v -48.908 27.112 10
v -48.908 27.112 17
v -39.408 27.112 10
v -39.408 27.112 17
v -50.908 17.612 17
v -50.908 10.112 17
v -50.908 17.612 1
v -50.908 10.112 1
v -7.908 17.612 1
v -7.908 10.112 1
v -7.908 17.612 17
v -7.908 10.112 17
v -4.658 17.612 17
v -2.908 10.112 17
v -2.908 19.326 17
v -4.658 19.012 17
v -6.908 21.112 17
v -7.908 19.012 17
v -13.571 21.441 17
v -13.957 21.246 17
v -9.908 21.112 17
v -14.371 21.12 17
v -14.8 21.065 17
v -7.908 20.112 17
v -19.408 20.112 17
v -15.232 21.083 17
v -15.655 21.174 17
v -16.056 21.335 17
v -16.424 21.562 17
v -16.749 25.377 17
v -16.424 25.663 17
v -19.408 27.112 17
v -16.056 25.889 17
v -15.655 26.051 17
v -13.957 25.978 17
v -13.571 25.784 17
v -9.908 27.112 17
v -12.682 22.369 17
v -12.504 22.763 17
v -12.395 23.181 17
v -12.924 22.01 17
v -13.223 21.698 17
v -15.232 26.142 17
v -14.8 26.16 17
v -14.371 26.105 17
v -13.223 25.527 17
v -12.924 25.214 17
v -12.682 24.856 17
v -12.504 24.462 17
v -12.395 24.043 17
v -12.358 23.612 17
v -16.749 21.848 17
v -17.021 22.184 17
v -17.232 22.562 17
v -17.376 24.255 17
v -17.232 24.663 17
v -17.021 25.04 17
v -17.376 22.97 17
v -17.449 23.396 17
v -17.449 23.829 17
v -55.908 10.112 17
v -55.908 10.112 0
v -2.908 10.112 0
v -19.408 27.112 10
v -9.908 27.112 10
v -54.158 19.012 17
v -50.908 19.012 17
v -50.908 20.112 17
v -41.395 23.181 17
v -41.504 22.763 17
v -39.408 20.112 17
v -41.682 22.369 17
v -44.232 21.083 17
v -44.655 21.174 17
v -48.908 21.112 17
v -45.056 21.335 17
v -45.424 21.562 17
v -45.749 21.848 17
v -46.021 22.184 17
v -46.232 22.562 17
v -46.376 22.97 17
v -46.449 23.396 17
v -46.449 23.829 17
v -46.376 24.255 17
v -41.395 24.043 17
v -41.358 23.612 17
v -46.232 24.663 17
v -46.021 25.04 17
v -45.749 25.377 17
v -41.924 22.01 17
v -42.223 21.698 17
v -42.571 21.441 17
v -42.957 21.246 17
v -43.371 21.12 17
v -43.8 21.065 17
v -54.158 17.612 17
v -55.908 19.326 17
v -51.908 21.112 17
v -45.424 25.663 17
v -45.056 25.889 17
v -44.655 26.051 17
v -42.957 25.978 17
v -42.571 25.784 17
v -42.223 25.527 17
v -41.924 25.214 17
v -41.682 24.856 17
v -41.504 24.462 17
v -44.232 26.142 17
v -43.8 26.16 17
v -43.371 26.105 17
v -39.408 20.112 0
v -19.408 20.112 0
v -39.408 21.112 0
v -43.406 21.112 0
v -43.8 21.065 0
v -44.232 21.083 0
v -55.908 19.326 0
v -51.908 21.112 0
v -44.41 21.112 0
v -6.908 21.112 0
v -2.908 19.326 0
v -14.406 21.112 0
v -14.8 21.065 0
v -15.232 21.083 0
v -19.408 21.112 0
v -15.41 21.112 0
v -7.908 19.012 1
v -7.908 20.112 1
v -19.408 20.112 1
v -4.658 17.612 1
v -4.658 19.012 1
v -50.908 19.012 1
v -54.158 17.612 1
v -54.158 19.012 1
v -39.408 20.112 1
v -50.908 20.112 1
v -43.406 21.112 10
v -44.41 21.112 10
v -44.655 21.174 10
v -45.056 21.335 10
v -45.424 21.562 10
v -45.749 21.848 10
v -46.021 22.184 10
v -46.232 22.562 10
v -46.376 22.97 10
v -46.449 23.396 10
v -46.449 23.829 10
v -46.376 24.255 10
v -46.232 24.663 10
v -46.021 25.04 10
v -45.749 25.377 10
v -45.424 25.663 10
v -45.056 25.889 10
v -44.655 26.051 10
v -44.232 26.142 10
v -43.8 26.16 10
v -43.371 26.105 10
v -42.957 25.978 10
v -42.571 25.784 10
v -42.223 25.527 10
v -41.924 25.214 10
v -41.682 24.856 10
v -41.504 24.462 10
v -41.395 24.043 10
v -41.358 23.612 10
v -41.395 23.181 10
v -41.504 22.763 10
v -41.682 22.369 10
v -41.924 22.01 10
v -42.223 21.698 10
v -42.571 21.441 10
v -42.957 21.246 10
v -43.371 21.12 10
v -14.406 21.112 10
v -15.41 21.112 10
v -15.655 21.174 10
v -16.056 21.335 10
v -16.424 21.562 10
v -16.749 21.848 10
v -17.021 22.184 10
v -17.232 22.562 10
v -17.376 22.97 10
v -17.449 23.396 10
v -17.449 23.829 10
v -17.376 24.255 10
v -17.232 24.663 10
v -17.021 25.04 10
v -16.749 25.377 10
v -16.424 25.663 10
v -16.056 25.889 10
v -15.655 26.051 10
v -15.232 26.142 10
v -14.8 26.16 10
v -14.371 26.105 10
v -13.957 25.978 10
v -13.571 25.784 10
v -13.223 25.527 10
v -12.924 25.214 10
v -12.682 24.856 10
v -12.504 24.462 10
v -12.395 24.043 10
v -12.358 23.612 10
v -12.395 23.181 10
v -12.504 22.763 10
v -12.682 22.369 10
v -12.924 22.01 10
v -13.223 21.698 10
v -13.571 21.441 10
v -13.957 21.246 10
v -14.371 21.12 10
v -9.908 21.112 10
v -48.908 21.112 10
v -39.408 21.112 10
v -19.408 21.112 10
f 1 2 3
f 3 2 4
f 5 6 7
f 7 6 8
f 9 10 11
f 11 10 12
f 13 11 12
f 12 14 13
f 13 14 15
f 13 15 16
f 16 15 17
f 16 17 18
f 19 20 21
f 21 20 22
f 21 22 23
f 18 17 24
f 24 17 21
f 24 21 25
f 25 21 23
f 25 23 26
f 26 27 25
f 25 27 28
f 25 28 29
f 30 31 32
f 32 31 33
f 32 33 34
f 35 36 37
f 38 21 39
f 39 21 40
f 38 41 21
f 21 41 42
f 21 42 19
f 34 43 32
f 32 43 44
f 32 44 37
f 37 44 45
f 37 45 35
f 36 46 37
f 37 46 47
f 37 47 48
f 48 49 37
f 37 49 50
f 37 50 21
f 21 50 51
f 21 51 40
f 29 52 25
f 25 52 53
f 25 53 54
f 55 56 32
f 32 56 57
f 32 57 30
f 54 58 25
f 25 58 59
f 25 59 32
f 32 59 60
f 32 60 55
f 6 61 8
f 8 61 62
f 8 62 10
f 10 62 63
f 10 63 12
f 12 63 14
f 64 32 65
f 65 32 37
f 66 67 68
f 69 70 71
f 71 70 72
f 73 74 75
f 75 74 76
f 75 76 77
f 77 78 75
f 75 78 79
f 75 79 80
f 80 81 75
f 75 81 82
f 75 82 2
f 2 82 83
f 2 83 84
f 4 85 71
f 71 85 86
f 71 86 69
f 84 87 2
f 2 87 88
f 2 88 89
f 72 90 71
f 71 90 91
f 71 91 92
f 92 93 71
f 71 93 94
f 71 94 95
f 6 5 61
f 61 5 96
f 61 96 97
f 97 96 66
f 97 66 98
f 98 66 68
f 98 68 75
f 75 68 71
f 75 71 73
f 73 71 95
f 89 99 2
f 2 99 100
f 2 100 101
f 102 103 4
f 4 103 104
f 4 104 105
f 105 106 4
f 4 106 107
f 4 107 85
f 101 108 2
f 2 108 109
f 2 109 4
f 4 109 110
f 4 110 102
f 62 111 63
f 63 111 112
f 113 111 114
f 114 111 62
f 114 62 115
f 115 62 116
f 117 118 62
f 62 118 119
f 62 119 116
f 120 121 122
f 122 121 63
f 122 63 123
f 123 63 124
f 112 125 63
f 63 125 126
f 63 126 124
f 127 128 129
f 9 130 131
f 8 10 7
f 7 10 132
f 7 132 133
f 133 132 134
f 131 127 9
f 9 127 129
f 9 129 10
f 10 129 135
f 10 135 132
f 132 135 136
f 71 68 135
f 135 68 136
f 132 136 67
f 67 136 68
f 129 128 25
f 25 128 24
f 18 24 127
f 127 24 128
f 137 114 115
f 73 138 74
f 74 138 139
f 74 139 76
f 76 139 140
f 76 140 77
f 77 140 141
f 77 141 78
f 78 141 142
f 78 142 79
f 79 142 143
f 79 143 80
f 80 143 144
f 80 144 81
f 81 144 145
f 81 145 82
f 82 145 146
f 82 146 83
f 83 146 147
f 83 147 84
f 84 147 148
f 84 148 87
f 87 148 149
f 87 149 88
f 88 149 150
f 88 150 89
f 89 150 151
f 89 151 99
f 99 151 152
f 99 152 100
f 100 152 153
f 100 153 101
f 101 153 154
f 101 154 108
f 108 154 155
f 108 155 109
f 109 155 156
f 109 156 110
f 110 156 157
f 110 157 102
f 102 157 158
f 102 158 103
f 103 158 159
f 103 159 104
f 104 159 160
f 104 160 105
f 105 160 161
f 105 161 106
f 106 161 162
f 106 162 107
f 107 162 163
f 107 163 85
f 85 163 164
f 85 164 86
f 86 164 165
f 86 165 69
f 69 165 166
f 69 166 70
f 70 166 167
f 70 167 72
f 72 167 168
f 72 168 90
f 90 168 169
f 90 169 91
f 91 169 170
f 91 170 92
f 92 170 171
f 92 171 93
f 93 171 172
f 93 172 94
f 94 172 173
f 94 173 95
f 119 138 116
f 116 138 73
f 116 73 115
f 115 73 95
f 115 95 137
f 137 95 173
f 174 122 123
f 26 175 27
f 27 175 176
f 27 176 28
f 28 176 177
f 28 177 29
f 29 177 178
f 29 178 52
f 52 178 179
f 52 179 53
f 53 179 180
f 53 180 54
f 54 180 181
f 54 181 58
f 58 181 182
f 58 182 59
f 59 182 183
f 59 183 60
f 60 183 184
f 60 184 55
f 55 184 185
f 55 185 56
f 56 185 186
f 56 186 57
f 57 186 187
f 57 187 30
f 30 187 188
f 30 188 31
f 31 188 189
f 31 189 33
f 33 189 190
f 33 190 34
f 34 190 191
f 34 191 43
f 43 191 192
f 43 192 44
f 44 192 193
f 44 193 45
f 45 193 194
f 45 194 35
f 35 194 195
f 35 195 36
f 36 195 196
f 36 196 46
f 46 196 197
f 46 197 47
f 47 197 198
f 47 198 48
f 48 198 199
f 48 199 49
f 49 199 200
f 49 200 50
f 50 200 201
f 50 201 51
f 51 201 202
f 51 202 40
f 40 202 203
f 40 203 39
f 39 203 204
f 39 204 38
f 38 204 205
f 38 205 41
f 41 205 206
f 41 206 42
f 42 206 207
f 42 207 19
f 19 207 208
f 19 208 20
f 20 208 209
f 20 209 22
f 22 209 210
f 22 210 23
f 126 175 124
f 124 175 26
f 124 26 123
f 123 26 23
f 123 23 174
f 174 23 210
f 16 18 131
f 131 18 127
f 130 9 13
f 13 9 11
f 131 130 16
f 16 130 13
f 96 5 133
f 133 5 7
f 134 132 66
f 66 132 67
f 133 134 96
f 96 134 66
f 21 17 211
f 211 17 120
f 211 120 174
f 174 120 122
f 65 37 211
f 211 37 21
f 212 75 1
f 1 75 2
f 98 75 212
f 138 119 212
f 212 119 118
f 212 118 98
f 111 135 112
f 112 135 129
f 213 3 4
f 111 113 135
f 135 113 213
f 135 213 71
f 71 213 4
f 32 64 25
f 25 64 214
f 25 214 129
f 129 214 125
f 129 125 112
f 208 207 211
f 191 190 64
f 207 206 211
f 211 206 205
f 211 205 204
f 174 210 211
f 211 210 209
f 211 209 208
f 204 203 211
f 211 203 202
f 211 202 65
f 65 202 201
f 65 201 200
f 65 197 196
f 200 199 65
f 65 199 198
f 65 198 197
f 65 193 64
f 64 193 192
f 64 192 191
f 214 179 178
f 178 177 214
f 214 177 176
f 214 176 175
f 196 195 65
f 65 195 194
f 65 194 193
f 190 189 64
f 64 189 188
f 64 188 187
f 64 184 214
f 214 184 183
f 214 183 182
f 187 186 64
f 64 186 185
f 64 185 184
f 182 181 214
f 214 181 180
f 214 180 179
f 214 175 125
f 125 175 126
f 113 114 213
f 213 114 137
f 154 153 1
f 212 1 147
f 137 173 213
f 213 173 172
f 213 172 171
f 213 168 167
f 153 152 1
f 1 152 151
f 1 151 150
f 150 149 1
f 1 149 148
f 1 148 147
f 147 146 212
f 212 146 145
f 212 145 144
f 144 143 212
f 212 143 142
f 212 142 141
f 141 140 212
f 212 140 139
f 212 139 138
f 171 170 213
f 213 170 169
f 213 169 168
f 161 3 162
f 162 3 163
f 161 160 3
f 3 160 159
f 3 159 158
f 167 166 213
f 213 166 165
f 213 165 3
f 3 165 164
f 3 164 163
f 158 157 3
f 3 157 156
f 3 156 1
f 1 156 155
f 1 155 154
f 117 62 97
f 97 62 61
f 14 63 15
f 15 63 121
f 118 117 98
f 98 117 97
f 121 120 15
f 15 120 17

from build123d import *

# Parameters (mm, degrees)
CROQUIS1_W              = 51
CROQUIS1_H              = 17
SALIENTE_EXTRUIR1_DEPTH = 17
CROQUIS2_W              = 15
CROQUIS2_H              = 16
CORTAR_EXTRUIR1_DEPTH   = 17
CROQUIS3_W              = 43
CROQUIS3_H              = 10
CORTAR_EXTRUIR2_DEPTH   = 16
CORTAR_EXTRUIR3_START   = -17
CROQUIS5_R              = 2.55
CORTAR_EXTRUIR3_DEPTH   = 17
CROQUIS6_W              = 49.5
CROQUIS6_H              = 1.4
CORTAR_EXTRUIR4_DEPTH   = 16
CORTAR_EXTRUIR5_START   = -17
CROQUIS7_W              = 6
CROQUIS7_H              = 6
CROQUIS7_W_2            = 20
CROQUIS7_H_2            = 7
CORTAR_EXTRUIR5_DEPTH   = 17
CORTAR_EXTRUIR6_START   = -39
CROQUIS8_W              = 10
CROQUIS8_H              = 6
CORTAR_EXTRUIR6_DEPTH   = 39
CROQUIS10_W             = 17
CROQUIS10_H             = 11
SALIENTE_EXTRUIR4_DEPTH = 1
CROQUIS11_W             = 17
CROQUIS11_H             = 11
SALIENTE_EXTRUIR5_DEPTH = 1
CORTAR_EXTRUIR7_START   = -17
CORTAR_EXTRUIR7_DEPTH   = 17


with BuildPart() as part:
    # Croquis1 → Saliente-Extruir1 (new body)
    with BuildSketch(Plane.XY):
        with Locations((-29.407991935, 18.612308998)):
            Rectangle(CROQUIS1_W, CROQUIS1_H)
    extrude(amount=SALIENTE_EXTRUIR1_DEPTH)

    # Croquis2 → Cortar-Extruir1 (cut)
    with BuildSketch(Plane.XZ.offset(-10.112308998)):
        with Locations((-29.407991935, 9)):
            Rectangle(CROQUIS2_W, CROQUIS2_H)
    extrude(amount=-CORTAR_EXTRUIR1_DEPTH, mode=Mode.SUBTRACT)

    # Croquis3 → Cortar-Extruir2 (cut)
    with BuildSketch(Plane.XY.offset(17)):
        with Locations((-29.407991935, 15.112308998)):
            Rectangle(CROQUIS3_W, CROQUIS3_H)
    extrude(amount=-CORTAR_EXTRUIR2_DEPTH, mode=Mode.SUBTRACT)

    # Croquis5 → Cortar-Extruir3 (cut)
    with BuildSketch(Plane.XY.offset(17).offset(CORTAR_EXTRUIR3_START)):
        with Locations((-43.907991935, 23.612308998)):
            Circle(CROQUIS5_R)
        with Locations((-14.907991935, 23.612308998)):
            Circle(CROQUIS5_R)
    extrude(amount=CORTAR_EXTRUIR3_DEPTH, mode=Mode.SUBTRACT)

    # Croquis6 → Cortar-Extruir4 (cut)
    with BuildSketch(Plane.XY.offset(17)):
        with Locations((-29.407991935, 18.312308998)):
            Rectangle(CROQUIS6_W, CROQUIS6_H)
    extrude(amount=-CORTAR_EXTRUIR4_DEPTH, mode=Mode.SUBTRACT)

    # Croquis7 → Cortar-Extruir5 (cut)
    with BuildSketch(Plane.XY.offset(17).offset(CORTAR_EXTRUIR5_START)):
        with Locations((-6.907991935, 24.112308998)):
            Rectangle(CROQUIS7_W, CROQUIS7_H)
        with Locations((-51.907991935, 24.112308998)):
            Rectangle(CROQUIS7_W, CROQUIS7_H)
        with Locations((-29.407991935, 23.612308998)):
            Rectangle(CROQUIS7_W_2, CROQUIS7_H_2)
    extrude(amount=CORTAR_EXTRUIR5_DEPTH, mode=Mode.SUBTRACT)

    # Croquis8 → Cortar-Extruir6 (cut)
    with BuildSketch(Plane(origin=(-9.907991935, 0, 0), x_dir=(0, 0, -1), z_dir=(1, 0, 0)).offset(CORTAR_EXTRUIR6_START)):
        with Locations((-5, 24.112308998)):
            Rectangle(CROQUIS8_W, CROQUIS8_H)
    extrude(amount=CORTAR_EXTRUIR6_DEPTH, mode=Mode.SUBTRACT)

    # Croquis10 → Saliente-Extruir4 (add)
    with BuildSketch(Plane.ZY.offset(54.907991935)):
        with Locations((8.5, 15.612308998)):
            Rectangle(CROQUIS10_W, CROQUIS10_H)
    extrude(amount=SALIENTE_EXTRUIR4_DEPTH)

    # Croquis11 → Saliente-Extruir5 (add)
    with BuildSketch(Plane(origin=(-3.907991935, 0, 0), x_dir=(0, 0, -1), z_dir=(1, 0, 0))):
        with Locations((-8.5, 15.612308998)):
            Rectangle(CROQUIS11_W, CROQUIS11_H)
    extrude(amount=SALIENTE_EXTRUIR5_DEPTH)

    # Croquis12 → Cortar-Extruir7 (cut)
    with BuildSketch(Plane.XY.offset(17).offset(CORTAR_EXTRUIR7_START)):
        Polygon((-55.907991935, 21.112308998), (-51.907991935, 21.112308998), (-55.907991935, 19.325976361), align=None)
        Polygon((-2.907991935, 21.112308998), (-6.907991935, 21.112308998), (-2.907991935, 19.325976361), align=None)
    extrude(amount=CORTAR_EXTRUIR7_DEPTH, mode=Mode.SUBTRACT)


solid = part.part
